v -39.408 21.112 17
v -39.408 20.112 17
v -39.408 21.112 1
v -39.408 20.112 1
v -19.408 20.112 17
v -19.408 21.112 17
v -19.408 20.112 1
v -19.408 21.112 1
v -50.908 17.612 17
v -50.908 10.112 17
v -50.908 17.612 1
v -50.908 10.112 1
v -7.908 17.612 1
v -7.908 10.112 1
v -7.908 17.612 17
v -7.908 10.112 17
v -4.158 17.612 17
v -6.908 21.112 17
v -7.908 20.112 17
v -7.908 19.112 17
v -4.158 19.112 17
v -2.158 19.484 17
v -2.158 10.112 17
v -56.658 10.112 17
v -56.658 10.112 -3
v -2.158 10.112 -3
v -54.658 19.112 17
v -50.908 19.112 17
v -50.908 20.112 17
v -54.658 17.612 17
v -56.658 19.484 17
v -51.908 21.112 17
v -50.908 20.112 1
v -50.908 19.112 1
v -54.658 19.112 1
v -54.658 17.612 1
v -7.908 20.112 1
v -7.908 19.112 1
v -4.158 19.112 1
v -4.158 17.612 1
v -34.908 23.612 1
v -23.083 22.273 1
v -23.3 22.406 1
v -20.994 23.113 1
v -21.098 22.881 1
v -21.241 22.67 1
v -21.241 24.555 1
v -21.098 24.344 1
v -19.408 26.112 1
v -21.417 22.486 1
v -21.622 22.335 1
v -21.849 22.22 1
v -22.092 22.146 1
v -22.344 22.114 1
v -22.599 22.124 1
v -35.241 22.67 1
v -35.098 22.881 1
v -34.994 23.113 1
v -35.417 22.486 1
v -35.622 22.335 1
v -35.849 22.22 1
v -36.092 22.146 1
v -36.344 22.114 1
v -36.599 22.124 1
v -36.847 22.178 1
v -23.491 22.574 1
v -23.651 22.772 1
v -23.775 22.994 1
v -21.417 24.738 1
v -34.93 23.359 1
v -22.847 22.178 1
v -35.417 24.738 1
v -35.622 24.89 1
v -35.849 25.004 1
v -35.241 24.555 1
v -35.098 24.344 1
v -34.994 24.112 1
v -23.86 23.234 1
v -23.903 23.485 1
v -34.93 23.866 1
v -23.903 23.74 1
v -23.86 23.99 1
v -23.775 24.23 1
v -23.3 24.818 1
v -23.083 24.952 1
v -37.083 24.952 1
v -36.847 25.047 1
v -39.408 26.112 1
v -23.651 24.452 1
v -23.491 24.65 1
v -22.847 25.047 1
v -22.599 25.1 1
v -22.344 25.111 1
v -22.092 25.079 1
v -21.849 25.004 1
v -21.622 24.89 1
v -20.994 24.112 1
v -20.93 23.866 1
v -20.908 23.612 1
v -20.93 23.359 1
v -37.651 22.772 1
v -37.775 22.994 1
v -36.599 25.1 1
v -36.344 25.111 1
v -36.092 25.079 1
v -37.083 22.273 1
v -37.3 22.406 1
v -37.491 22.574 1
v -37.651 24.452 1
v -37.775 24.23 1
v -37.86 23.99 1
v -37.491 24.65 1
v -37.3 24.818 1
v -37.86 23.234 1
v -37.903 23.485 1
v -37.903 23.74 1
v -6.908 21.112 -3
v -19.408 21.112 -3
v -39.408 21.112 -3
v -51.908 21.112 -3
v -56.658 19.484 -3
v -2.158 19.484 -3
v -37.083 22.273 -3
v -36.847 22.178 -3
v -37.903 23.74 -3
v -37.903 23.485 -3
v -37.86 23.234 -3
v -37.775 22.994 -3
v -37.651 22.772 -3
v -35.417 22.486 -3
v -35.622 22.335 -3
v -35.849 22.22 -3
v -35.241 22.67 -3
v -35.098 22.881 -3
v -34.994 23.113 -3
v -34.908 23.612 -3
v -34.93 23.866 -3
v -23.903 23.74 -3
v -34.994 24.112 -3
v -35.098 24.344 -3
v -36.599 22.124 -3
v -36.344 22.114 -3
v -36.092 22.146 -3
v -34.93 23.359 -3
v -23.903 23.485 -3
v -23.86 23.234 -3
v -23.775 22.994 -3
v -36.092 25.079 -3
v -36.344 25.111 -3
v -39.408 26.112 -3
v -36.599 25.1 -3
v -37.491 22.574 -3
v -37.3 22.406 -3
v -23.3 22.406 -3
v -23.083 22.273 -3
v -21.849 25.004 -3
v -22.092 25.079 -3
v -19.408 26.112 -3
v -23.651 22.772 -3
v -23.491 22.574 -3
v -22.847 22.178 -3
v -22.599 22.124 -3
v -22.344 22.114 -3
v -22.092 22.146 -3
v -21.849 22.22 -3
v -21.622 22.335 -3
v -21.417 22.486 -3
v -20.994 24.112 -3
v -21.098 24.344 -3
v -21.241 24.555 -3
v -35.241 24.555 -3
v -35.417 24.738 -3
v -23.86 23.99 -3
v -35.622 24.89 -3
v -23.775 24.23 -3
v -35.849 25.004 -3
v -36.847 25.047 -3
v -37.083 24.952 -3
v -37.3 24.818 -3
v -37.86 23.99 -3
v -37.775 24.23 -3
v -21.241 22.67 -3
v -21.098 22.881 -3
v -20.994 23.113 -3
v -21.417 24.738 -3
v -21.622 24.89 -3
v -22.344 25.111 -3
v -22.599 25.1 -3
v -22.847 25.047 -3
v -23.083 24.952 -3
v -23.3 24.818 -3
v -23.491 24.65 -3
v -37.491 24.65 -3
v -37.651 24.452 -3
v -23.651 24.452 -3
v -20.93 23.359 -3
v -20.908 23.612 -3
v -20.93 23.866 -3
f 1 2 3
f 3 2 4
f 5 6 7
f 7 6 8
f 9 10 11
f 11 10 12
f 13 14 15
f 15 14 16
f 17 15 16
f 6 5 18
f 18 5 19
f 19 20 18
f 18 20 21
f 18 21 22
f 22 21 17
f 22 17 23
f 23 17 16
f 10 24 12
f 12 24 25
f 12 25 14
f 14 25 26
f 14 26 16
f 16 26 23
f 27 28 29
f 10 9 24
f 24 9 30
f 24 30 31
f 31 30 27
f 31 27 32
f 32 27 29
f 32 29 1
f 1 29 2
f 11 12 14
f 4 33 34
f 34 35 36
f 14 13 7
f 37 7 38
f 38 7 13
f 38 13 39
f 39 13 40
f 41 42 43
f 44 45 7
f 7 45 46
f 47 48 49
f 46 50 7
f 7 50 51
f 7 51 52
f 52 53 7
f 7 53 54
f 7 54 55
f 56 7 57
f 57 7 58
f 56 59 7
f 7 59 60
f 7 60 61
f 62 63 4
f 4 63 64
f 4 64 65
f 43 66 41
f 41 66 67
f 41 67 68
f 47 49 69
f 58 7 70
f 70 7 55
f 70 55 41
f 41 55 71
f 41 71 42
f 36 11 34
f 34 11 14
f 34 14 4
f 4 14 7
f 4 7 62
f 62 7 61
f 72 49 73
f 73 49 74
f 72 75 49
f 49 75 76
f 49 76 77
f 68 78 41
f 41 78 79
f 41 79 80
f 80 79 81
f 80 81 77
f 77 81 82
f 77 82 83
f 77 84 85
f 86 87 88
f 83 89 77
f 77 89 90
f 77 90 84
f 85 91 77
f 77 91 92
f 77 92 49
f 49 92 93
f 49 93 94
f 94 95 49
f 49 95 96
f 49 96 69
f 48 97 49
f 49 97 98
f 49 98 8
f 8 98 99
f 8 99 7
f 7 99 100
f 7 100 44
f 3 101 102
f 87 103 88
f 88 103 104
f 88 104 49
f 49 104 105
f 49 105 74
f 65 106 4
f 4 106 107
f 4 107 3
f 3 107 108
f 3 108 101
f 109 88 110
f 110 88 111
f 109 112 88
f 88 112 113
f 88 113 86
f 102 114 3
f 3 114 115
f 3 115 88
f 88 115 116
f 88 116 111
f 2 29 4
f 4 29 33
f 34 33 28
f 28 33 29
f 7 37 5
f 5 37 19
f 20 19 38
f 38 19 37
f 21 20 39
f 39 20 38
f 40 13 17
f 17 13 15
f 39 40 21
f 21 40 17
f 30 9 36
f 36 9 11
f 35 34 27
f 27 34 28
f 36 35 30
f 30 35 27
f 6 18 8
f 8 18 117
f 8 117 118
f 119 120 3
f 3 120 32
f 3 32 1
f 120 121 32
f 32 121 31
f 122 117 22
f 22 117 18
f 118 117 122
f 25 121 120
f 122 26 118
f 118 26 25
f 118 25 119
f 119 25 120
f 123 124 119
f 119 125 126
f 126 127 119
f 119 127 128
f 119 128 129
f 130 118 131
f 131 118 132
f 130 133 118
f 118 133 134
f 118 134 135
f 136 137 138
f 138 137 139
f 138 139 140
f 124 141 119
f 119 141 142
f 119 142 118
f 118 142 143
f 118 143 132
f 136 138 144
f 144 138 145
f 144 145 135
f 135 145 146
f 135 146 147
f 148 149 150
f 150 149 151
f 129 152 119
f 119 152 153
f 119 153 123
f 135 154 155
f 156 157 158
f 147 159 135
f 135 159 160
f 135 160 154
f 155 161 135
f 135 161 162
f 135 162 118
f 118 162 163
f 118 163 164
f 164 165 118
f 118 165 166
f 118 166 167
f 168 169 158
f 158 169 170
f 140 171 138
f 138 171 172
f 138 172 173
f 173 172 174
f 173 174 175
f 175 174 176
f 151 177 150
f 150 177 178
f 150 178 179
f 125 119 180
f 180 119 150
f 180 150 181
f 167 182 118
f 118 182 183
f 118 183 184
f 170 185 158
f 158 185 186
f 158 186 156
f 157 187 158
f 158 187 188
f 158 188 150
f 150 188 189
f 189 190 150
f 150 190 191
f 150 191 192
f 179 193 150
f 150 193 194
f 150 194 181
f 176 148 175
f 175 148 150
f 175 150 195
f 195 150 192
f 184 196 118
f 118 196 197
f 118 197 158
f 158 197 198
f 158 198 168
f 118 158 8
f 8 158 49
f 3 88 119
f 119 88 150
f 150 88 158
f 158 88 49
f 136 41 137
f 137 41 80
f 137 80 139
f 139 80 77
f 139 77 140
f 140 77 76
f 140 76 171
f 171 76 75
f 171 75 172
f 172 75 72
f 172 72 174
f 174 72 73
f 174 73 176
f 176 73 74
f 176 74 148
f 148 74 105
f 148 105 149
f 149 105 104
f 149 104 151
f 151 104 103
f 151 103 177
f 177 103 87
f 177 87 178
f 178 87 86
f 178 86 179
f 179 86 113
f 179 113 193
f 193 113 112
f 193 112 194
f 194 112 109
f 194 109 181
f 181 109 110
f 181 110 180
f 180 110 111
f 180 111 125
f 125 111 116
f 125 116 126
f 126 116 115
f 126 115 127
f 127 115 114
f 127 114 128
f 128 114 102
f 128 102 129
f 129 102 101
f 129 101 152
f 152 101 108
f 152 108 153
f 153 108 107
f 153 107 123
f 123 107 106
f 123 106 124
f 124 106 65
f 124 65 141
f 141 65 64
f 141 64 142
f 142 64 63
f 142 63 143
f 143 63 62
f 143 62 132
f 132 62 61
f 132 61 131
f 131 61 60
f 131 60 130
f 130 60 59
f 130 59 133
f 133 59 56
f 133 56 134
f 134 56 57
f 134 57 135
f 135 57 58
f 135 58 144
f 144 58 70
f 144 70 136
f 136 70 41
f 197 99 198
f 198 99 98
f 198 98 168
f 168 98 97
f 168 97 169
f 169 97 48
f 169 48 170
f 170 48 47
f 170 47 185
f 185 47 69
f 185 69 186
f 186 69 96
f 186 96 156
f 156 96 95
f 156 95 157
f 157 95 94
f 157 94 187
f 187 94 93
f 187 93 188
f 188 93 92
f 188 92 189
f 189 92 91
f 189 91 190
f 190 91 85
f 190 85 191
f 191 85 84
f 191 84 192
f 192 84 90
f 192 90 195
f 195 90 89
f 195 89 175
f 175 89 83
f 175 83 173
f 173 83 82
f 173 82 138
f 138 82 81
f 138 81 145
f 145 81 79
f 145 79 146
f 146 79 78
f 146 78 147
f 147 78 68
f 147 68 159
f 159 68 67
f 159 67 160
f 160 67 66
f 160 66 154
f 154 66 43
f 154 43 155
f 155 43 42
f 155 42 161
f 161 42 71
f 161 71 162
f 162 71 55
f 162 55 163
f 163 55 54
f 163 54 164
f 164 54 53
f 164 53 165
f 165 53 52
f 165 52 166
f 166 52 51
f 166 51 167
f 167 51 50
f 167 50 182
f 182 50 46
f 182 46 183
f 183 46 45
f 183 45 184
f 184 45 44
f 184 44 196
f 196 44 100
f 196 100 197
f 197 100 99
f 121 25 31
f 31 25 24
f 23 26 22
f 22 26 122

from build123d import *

# Parameters (mm, degrees)
CROQUIS1_W              = 51
CROQUIS1_H              = 17
SALIENTE_EXTRUIR1_DEPTH = 17
CROQUIS2_W              = 15
CROQUIS2_H              = 16
CORTAR_EXTRUIR1_DEPTH   = 17
CROQUIS3_W              = 43
CROQUIS3_H              = 10
CORTAR_EXTRUIR2_DEPTH   = 16
CROQUIS6_W              = 50.5
CROQUIS6_H              = 1.5
CORTAR_EXTRUIR4_DEPTH   = 16
CORTAR_EXTRUIR5_START   = -17
CROQUIS7_W              = 6
CROQUIS7_H              = 6
CROQUIS7_W_2            = 20
CROQUIS7_H_2            = 7
CORTAR_EXTRUIR5_DEPTH   = 17
CORTAR_EXTRUIR6_START   = -39
CROQUIS8_W              = 10
CROQUIS8_H              = 6
CORTAR_EXTRUIR6_DEPTH   = 39
CROQUIS10_W             = 17
CROQUIS10_H             = 11
SALIENTE_EXTRUIR4_DEPTH = 1
CROQUIS11_W             = 17
CROQUIS11_H             = 11
SALIENTE_EXTRUIR5_DEPTH = 1
CORTAR_EXTRUIR7_START   = -17
CORTAR_EXTRUIR7_DEPTH   = 17
CROQUIS13_W             = 9.5
CROQUIS13_H             = 6
CORTAR_EXTRUIR8_DEPTH   = 7
SALIENTE_EXTRUIR6_DEPTH = 3
CROQUIS16_W             = 20
CROQUIS16_H             = 4
SALIENTE_EXTRUIR7_DEPTH = 6
CROQUIS17_R             = 1.5
CORTAR_EXTRUIR9_DEPTH   = 4
CROQUIS20_W             = 20
CROQUIS20_H             = 9.628571429
SALIENTE_EXTRUIR8_DEPTH = 0.75
CROQUIS21_W             = 20
CROQUIS21_H             = 9.628571429
SALIENTE_EXTRUIR9_DEPTH = 0.75
CORTAR_EXTRUIR10_START  = -20
CORTAR_EXTRUIR10_DEPTH  = 20


with BuildPart() as part:
    # Croquis1 → Saliente-Extruir1 (new body)
    with BuildSketch(Plane.XY):
        with Locations((-29.407991935, 18.612308998)):
            Rectangle(CROQUIS1_W, CROQUIS1_H)
    extrude(amount=SALIENTE_EXTRUIR1_DEPTH)

    # Croquis2 → Cortar-Extruir1 (cut)
    with BuildSketch(Plane.XZ.offset(-10.112308998)):
        with Locations((-29.407991935, 9)):
            Rectangle(CROQUIS2_W, CROQUIS2_H)
    extrude(amount=-CORTAR_EXTRUIR1_DEPTH, mode=Mode.SUBTRACT)

    # Croquis3 → Cortar-Extruir2 (cut)
    with BuildSketch(Plane.XY.offset(17)):
        with Locations((-29.407991935, 15.112308998)):
            Rectangle(CROQUIS3_W, CROQUIS3_H)
    extrude(amount=-CORTAR_EXTRUIR2_DEPTH, mode=Mode.SUBTRACT)

    # Croquis6 → Cortar-Extruir4 (cut)
    with BuildSketch(Plane.XY.offset(17)):
        with Locations((-29.407991935, 18.362308998)):
            Rectangle(CROQUIS6_W, CROQUIS6_H)
    extrude(amount=-CORTAR_EXTRUIR4_DEPTH, mode=Mode.SUBTRACT)

    # Croquis7 → Cortar-Extruir5 (cut)
    with BuildSketch(Plane.XY.offset(17).offset(CORTAR_EXTRUIR5_START)):
        with Locations((-6.907991935, 24.112308998)):
            Rectangle(CROQUIS7_W, CROQUIS7_H)
        with Locations((-51.907991935, 24.112308998)):
            Rectangle(CROQUIS7_W, CROQUIS7_H)
        with Locations((-29.407991935, 23.612308998)):
            Rectangle(CROQUIS7_W_2, CROQUIS7_H_2)
    extrude(amount=CORTAR_EXTRUIR5_DEPTH, mode=Mode.SUBTRACT)

    # Croquis8 → Cortar-Extruir6 (cut)
    with BuildSketch(Plane(origin=(-9.907991935, 0, 0), x_dir=(0, 0, -1), z_dir=(1, 0, 0)).offset(CORTAR_EXTRUIR6_START)):
        with Locations((-5, 24.112308998)):
            Rectangle(CROQUIS8_W, CROQUIS8_H)
    extrude(amount=CORTAR_EXTRUIR6_DEPTH, mode=Mode.SUBTRACT)

    # Croquis10 → Saliente-Extruir4 (add)
    with BuildSketch(Plane.ZY.offset(54.907991935)):
        with Locations((8.5, 15.612308998)):
            Rectangle(CROQUIS10_W, CROQUIS10_H)
    extrude(amount=SALIENTE_EXTRUIR4_DEPTH)

    # Croquis11 → Saliente-Extruir5 (add)
    with BuildSketch(Plane(origin=(-3.907991935, 0, 0), x_dir=(0, 0, -1), z_dir=(1, 0, 0))):
        with Locations((-8.5, 15.612308998)):
            Rectangle(CROQUIS11_W, CROQUIS11_H)
    extrude(amount=SALIENTE_EXTRUIR5_DEPTH)

    # Croquis12 → Cortar-Extruir7 (cut)
    with BuildSketch(Plane.XY.offset(17).offset(CORTAR_EXTRUIR7_START)):
        Polygon((-55.907991935, 21.112308998), (-51.907991935, 21.112308998), (-55.907991935, 19.740880427), align=None)
        Polygon((-2.907991935, 21.112308998), (-6.907991935, 21.112308998), (-2.907991935, 19.740880427), align=None)
    extrude(amount=CORTAR_EXTRUIR7_DEPTH, mode=Mode.SUBTRACT)

    # Croquis13 → Cortar-Extruir8 (cut)
    with BuildSketch(Plane.XY.offset(17)):
        with Locations((-44.157991935, 24.112308998)):
            Rectangle(CROQUIS13_W, CROQUIS13_H)
        with Locations((-14.657991935, 24.112308998)):
            Rectangle(CROQUIS13_W, CROQUIS13_H)
    extrude(amount=-CORTAR_EXTRUIR8_DEPTH, mode=Mode.SUBTRACT)

    # Croquis14 → Saliente-Extruir6 (add)
    with BuildSketch(Plane(origin=(0, 0, 0), x_dir=(-1, 0, 0), z_dir=(0, 0, -1))):
        Polygon((55.907991935, 10.112308998), (55.907991935, 19.740880427), (51.907991935, 21.112308998), (39.407991935, 21.112308998), (39.407991935, 20.112308998), (19.407991935, 20.112308998), (19.407991935, 21.112308998), (6.907991935, 21.112308998), (2.907991935, 19.740880427), (2.907991935, 10.112308998), align=None)
    extrude(amount=SALIENTE_EXTRUIR6_DEPTH)

    # Croquis16 → Saliente-Extruir7 (add)
    with BuildSketch(Plane(origin=(0, 20.112308998, 0), x_dir=(1, 0, 0), z_dir=(0, 1, 0))):
        with Locations((-29.407991935, 1)):
            Rectangle(CROQUIS16_W, CROQUIS16_H)
    extrude(amount=SALIENTE_EXTRUIR7_DEPTH)

    # Croquis17 → Cortar-Extruir9 (cut)
    with BuildSketch(Plane.XY.offset(1)):
        with Locations((-22.407991935, 23.612308998)):
            Circle(CROQUIS17_R)
        with Locations((-36.407991935, 23.612308998)):
            Circle(CROQUIS17_R)
    extrude(amount=-CORTAR_EXTRUIR9_DEPTH, mode=Mode.SUBTRACT)

    # Croquis20 → Saliente-Extruir8 (add)
    with BuildSketch(Plane.ZY.offset(55.907991935)):
        with Locations((7, 14.926594713)):
            Rectangle(CROQUIS20_W, CROQUIS20_H)
    extrude(amount=SALIENTE_EXTRUIR8_DEPTH)

    # Croquis21 → Saliente-Extruir9 (add)
    with BuildSketch(Plane(origin=(-2.907991935, 0, 0), x_dir=(0, 0, -1), z_dir=(1, 0, 0))):
        with Locations((-7, 14.926594713)):
            Rectangle(CROQUIS21_W, CROQUIS21_H)
    extrude(amount=SALIENTE_EXTRUIR9_DEPTH)

    # Croquis22 → Cortar-Extruir10 (cut)
    with BuildSketch(Plane.XY.offset(17).offset(CORTAR_EXTRUIR10_START)):
        Polygon((-56.657991935, 19.48373757), (-56.657991935, 19.740880427), (-55.907991935, 19.740880427), align=None)
        Polygon((-2.157991935, 19.48373757), (-2.157991935, 19.740880427), (-2.907991935, 19.740880427), align=None)
    extrude(amount=CORTAR_EXTRUIR10_DEPTH, mode=Mode.SUBTRACT)


solid = part.part
